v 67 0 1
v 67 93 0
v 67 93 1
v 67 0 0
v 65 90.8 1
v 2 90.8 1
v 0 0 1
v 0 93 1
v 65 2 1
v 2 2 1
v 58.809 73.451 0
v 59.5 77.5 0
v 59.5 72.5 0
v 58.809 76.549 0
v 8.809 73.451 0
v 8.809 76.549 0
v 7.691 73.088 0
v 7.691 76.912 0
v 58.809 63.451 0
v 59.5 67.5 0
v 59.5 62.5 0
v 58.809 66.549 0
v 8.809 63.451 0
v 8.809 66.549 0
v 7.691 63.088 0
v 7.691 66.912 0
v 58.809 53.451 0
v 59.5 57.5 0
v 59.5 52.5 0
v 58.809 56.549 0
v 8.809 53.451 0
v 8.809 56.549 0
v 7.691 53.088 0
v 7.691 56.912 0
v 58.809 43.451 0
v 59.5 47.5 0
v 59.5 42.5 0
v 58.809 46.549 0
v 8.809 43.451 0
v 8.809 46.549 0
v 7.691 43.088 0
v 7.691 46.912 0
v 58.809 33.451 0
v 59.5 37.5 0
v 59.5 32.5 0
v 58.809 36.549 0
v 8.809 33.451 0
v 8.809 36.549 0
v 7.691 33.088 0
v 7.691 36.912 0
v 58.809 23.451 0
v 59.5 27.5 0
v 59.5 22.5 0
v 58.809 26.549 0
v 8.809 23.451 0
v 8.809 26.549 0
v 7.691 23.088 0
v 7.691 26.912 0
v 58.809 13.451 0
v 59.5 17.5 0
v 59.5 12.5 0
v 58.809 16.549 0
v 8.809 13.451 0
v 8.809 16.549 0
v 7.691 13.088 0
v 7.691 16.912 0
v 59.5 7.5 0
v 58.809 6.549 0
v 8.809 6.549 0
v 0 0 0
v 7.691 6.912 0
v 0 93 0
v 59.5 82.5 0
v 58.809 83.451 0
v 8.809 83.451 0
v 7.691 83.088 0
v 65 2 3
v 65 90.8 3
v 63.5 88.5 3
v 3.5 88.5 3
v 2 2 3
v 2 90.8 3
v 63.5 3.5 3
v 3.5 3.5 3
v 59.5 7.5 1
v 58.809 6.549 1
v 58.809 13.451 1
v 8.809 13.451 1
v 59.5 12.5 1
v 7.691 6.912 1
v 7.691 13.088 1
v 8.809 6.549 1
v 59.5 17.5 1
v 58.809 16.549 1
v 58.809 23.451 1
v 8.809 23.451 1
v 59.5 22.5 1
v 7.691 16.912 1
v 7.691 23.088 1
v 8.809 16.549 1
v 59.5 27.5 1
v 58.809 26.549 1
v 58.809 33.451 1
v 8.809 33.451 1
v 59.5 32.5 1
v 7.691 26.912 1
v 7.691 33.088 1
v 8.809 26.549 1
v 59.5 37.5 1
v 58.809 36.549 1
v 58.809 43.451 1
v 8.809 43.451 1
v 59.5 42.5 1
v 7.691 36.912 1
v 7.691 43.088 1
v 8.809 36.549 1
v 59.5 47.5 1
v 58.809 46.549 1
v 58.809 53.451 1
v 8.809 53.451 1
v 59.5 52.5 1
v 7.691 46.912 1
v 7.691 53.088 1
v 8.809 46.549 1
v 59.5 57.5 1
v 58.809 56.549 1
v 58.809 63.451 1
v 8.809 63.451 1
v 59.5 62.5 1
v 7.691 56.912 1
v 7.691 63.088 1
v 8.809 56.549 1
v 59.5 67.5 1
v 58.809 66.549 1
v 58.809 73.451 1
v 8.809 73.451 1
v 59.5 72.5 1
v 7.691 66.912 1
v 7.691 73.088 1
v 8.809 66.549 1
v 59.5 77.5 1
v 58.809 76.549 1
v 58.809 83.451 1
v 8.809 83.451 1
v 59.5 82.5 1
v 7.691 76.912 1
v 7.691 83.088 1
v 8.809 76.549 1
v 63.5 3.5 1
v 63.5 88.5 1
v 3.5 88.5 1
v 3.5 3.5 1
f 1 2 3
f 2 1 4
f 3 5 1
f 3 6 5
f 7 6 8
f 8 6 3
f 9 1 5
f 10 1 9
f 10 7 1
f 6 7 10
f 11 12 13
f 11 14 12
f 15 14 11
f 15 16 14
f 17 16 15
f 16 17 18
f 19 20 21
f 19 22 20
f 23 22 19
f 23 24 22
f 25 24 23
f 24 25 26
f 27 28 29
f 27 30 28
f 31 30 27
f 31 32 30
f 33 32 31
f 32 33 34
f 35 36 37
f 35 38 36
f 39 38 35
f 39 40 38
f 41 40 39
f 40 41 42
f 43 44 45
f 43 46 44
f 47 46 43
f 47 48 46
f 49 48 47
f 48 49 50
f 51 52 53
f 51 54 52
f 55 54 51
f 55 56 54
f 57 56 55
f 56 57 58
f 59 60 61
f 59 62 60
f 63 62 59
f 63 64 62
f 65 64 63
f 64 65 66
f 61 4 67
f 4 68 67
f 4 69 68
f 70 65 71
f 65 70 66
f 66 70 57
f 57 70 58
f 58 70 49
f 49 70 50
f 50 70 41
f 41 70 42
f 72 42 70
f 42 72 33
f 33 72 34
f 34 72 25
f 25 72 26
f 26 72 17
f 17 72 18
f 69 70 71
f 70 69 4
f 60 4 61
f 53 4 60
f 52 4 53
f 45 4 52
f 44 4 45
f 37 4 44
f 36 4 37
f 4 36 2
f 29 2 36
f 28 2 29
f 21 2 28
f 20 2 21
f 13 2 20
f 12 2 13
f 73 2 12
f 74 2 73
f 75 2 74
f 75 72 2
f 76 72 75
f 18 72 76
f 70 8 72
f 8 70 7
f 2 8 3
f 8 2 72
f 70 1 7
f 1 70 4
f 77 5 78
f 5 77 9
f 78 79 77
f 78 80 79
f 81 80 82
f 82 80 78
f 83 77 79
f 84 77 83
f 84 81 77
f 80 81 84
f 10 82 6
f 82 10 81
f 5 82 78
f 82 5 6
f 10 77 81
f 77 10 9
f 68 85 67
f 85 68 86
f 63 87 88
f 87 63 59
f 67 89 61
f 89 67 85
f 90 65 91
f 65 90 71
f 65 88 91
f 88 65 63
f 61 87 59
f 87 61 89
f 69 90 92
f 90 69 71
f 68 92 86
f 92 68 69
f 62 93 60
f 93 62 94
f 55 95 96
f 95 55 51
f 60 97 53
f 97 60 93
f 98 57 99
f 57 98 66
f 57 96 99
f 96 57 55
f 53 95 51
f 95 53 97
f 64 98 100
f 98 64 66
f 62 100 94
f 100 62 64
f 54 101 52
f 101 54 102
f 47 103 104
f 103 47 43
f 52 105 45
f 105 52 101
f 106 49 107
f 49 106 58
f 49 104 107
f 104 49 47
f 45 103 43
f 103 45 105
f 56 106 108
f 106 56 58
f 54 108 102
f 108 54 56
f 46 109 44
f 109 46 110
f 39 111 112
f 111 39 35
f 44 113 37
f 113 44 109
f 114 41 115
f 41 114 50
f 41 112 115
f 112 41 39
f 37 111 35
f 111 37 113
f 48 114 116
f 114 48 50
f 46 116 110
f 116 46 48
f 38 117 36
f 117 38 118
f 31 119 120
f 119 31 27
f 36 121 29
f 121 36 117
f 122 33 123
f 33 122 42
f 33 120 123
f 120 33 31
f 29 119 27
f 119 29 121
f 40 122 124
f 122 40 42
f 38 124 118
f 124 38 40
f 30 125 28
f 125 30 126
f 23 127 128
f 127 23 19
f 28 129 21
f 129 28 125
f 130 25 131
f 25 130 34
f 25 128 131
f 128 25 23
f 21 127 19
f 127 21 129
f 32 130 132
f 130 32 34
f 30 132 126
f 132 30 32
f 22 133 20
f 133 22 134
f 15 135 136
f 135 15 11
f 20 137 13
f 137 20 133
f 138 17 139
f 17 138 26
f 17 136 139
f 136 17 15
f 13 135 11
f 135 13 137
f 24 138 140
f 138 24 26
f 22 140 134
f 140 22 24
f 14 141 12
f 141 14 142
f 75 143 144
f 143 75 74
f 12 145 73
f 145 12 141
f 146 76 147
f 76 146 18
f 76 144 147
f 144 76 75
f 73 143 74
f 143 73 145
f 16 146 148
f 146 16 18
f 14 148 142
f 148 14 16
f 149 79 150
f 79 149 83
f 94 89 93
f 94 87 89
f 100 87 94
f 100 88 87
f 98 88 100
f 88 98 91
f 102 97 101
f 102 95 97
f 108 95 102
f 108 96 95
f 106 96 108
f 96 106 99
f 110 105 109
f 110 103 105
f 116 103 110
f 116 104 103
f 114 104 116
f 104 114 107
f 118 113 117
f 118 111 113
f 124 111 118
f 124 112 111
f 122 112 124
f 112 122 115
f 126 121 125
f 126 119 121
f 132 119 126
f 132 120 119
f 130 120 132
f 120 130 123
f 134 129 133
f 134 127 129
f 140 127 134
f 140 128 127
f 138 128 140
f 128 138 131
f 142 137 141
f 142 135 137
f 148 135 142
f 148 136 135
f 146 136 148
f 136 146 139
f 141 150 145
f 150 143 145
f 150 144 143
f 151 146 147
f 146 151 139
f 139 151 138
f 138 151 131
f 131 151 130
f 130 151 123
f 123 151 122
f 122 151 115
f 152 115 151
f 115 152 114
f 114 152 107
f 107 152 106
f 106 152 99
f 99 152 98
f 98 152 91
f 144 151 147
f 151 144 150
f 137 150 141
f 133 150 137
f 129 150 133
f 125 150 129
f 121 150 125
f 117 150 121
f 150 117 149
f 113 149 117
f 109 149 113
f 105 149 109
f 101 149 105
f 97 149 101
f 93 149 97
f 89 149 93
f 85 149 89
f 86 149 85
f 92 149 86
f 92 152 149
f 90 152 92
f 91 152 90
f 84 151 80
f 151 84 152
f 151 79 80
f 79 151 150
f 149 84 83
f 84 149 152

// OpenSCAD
difference() {
  union() {
    cube(size=[67,93,1]);
    translate(v=[2, 2,1])
    cube(size=[63,88.8,2]);
  }

  union() {
    translate(v=[3.5, 3.5,1])
      cube(size=[60,85,3]);

    for(i=[0:7]) {
      translate(v=[33.5,i*10 + 10,0])
      minkowski() {
        cylinder(h=1,r=1);
        cube(size=[50,5,10], center=true);
      }
    }
  }
}
